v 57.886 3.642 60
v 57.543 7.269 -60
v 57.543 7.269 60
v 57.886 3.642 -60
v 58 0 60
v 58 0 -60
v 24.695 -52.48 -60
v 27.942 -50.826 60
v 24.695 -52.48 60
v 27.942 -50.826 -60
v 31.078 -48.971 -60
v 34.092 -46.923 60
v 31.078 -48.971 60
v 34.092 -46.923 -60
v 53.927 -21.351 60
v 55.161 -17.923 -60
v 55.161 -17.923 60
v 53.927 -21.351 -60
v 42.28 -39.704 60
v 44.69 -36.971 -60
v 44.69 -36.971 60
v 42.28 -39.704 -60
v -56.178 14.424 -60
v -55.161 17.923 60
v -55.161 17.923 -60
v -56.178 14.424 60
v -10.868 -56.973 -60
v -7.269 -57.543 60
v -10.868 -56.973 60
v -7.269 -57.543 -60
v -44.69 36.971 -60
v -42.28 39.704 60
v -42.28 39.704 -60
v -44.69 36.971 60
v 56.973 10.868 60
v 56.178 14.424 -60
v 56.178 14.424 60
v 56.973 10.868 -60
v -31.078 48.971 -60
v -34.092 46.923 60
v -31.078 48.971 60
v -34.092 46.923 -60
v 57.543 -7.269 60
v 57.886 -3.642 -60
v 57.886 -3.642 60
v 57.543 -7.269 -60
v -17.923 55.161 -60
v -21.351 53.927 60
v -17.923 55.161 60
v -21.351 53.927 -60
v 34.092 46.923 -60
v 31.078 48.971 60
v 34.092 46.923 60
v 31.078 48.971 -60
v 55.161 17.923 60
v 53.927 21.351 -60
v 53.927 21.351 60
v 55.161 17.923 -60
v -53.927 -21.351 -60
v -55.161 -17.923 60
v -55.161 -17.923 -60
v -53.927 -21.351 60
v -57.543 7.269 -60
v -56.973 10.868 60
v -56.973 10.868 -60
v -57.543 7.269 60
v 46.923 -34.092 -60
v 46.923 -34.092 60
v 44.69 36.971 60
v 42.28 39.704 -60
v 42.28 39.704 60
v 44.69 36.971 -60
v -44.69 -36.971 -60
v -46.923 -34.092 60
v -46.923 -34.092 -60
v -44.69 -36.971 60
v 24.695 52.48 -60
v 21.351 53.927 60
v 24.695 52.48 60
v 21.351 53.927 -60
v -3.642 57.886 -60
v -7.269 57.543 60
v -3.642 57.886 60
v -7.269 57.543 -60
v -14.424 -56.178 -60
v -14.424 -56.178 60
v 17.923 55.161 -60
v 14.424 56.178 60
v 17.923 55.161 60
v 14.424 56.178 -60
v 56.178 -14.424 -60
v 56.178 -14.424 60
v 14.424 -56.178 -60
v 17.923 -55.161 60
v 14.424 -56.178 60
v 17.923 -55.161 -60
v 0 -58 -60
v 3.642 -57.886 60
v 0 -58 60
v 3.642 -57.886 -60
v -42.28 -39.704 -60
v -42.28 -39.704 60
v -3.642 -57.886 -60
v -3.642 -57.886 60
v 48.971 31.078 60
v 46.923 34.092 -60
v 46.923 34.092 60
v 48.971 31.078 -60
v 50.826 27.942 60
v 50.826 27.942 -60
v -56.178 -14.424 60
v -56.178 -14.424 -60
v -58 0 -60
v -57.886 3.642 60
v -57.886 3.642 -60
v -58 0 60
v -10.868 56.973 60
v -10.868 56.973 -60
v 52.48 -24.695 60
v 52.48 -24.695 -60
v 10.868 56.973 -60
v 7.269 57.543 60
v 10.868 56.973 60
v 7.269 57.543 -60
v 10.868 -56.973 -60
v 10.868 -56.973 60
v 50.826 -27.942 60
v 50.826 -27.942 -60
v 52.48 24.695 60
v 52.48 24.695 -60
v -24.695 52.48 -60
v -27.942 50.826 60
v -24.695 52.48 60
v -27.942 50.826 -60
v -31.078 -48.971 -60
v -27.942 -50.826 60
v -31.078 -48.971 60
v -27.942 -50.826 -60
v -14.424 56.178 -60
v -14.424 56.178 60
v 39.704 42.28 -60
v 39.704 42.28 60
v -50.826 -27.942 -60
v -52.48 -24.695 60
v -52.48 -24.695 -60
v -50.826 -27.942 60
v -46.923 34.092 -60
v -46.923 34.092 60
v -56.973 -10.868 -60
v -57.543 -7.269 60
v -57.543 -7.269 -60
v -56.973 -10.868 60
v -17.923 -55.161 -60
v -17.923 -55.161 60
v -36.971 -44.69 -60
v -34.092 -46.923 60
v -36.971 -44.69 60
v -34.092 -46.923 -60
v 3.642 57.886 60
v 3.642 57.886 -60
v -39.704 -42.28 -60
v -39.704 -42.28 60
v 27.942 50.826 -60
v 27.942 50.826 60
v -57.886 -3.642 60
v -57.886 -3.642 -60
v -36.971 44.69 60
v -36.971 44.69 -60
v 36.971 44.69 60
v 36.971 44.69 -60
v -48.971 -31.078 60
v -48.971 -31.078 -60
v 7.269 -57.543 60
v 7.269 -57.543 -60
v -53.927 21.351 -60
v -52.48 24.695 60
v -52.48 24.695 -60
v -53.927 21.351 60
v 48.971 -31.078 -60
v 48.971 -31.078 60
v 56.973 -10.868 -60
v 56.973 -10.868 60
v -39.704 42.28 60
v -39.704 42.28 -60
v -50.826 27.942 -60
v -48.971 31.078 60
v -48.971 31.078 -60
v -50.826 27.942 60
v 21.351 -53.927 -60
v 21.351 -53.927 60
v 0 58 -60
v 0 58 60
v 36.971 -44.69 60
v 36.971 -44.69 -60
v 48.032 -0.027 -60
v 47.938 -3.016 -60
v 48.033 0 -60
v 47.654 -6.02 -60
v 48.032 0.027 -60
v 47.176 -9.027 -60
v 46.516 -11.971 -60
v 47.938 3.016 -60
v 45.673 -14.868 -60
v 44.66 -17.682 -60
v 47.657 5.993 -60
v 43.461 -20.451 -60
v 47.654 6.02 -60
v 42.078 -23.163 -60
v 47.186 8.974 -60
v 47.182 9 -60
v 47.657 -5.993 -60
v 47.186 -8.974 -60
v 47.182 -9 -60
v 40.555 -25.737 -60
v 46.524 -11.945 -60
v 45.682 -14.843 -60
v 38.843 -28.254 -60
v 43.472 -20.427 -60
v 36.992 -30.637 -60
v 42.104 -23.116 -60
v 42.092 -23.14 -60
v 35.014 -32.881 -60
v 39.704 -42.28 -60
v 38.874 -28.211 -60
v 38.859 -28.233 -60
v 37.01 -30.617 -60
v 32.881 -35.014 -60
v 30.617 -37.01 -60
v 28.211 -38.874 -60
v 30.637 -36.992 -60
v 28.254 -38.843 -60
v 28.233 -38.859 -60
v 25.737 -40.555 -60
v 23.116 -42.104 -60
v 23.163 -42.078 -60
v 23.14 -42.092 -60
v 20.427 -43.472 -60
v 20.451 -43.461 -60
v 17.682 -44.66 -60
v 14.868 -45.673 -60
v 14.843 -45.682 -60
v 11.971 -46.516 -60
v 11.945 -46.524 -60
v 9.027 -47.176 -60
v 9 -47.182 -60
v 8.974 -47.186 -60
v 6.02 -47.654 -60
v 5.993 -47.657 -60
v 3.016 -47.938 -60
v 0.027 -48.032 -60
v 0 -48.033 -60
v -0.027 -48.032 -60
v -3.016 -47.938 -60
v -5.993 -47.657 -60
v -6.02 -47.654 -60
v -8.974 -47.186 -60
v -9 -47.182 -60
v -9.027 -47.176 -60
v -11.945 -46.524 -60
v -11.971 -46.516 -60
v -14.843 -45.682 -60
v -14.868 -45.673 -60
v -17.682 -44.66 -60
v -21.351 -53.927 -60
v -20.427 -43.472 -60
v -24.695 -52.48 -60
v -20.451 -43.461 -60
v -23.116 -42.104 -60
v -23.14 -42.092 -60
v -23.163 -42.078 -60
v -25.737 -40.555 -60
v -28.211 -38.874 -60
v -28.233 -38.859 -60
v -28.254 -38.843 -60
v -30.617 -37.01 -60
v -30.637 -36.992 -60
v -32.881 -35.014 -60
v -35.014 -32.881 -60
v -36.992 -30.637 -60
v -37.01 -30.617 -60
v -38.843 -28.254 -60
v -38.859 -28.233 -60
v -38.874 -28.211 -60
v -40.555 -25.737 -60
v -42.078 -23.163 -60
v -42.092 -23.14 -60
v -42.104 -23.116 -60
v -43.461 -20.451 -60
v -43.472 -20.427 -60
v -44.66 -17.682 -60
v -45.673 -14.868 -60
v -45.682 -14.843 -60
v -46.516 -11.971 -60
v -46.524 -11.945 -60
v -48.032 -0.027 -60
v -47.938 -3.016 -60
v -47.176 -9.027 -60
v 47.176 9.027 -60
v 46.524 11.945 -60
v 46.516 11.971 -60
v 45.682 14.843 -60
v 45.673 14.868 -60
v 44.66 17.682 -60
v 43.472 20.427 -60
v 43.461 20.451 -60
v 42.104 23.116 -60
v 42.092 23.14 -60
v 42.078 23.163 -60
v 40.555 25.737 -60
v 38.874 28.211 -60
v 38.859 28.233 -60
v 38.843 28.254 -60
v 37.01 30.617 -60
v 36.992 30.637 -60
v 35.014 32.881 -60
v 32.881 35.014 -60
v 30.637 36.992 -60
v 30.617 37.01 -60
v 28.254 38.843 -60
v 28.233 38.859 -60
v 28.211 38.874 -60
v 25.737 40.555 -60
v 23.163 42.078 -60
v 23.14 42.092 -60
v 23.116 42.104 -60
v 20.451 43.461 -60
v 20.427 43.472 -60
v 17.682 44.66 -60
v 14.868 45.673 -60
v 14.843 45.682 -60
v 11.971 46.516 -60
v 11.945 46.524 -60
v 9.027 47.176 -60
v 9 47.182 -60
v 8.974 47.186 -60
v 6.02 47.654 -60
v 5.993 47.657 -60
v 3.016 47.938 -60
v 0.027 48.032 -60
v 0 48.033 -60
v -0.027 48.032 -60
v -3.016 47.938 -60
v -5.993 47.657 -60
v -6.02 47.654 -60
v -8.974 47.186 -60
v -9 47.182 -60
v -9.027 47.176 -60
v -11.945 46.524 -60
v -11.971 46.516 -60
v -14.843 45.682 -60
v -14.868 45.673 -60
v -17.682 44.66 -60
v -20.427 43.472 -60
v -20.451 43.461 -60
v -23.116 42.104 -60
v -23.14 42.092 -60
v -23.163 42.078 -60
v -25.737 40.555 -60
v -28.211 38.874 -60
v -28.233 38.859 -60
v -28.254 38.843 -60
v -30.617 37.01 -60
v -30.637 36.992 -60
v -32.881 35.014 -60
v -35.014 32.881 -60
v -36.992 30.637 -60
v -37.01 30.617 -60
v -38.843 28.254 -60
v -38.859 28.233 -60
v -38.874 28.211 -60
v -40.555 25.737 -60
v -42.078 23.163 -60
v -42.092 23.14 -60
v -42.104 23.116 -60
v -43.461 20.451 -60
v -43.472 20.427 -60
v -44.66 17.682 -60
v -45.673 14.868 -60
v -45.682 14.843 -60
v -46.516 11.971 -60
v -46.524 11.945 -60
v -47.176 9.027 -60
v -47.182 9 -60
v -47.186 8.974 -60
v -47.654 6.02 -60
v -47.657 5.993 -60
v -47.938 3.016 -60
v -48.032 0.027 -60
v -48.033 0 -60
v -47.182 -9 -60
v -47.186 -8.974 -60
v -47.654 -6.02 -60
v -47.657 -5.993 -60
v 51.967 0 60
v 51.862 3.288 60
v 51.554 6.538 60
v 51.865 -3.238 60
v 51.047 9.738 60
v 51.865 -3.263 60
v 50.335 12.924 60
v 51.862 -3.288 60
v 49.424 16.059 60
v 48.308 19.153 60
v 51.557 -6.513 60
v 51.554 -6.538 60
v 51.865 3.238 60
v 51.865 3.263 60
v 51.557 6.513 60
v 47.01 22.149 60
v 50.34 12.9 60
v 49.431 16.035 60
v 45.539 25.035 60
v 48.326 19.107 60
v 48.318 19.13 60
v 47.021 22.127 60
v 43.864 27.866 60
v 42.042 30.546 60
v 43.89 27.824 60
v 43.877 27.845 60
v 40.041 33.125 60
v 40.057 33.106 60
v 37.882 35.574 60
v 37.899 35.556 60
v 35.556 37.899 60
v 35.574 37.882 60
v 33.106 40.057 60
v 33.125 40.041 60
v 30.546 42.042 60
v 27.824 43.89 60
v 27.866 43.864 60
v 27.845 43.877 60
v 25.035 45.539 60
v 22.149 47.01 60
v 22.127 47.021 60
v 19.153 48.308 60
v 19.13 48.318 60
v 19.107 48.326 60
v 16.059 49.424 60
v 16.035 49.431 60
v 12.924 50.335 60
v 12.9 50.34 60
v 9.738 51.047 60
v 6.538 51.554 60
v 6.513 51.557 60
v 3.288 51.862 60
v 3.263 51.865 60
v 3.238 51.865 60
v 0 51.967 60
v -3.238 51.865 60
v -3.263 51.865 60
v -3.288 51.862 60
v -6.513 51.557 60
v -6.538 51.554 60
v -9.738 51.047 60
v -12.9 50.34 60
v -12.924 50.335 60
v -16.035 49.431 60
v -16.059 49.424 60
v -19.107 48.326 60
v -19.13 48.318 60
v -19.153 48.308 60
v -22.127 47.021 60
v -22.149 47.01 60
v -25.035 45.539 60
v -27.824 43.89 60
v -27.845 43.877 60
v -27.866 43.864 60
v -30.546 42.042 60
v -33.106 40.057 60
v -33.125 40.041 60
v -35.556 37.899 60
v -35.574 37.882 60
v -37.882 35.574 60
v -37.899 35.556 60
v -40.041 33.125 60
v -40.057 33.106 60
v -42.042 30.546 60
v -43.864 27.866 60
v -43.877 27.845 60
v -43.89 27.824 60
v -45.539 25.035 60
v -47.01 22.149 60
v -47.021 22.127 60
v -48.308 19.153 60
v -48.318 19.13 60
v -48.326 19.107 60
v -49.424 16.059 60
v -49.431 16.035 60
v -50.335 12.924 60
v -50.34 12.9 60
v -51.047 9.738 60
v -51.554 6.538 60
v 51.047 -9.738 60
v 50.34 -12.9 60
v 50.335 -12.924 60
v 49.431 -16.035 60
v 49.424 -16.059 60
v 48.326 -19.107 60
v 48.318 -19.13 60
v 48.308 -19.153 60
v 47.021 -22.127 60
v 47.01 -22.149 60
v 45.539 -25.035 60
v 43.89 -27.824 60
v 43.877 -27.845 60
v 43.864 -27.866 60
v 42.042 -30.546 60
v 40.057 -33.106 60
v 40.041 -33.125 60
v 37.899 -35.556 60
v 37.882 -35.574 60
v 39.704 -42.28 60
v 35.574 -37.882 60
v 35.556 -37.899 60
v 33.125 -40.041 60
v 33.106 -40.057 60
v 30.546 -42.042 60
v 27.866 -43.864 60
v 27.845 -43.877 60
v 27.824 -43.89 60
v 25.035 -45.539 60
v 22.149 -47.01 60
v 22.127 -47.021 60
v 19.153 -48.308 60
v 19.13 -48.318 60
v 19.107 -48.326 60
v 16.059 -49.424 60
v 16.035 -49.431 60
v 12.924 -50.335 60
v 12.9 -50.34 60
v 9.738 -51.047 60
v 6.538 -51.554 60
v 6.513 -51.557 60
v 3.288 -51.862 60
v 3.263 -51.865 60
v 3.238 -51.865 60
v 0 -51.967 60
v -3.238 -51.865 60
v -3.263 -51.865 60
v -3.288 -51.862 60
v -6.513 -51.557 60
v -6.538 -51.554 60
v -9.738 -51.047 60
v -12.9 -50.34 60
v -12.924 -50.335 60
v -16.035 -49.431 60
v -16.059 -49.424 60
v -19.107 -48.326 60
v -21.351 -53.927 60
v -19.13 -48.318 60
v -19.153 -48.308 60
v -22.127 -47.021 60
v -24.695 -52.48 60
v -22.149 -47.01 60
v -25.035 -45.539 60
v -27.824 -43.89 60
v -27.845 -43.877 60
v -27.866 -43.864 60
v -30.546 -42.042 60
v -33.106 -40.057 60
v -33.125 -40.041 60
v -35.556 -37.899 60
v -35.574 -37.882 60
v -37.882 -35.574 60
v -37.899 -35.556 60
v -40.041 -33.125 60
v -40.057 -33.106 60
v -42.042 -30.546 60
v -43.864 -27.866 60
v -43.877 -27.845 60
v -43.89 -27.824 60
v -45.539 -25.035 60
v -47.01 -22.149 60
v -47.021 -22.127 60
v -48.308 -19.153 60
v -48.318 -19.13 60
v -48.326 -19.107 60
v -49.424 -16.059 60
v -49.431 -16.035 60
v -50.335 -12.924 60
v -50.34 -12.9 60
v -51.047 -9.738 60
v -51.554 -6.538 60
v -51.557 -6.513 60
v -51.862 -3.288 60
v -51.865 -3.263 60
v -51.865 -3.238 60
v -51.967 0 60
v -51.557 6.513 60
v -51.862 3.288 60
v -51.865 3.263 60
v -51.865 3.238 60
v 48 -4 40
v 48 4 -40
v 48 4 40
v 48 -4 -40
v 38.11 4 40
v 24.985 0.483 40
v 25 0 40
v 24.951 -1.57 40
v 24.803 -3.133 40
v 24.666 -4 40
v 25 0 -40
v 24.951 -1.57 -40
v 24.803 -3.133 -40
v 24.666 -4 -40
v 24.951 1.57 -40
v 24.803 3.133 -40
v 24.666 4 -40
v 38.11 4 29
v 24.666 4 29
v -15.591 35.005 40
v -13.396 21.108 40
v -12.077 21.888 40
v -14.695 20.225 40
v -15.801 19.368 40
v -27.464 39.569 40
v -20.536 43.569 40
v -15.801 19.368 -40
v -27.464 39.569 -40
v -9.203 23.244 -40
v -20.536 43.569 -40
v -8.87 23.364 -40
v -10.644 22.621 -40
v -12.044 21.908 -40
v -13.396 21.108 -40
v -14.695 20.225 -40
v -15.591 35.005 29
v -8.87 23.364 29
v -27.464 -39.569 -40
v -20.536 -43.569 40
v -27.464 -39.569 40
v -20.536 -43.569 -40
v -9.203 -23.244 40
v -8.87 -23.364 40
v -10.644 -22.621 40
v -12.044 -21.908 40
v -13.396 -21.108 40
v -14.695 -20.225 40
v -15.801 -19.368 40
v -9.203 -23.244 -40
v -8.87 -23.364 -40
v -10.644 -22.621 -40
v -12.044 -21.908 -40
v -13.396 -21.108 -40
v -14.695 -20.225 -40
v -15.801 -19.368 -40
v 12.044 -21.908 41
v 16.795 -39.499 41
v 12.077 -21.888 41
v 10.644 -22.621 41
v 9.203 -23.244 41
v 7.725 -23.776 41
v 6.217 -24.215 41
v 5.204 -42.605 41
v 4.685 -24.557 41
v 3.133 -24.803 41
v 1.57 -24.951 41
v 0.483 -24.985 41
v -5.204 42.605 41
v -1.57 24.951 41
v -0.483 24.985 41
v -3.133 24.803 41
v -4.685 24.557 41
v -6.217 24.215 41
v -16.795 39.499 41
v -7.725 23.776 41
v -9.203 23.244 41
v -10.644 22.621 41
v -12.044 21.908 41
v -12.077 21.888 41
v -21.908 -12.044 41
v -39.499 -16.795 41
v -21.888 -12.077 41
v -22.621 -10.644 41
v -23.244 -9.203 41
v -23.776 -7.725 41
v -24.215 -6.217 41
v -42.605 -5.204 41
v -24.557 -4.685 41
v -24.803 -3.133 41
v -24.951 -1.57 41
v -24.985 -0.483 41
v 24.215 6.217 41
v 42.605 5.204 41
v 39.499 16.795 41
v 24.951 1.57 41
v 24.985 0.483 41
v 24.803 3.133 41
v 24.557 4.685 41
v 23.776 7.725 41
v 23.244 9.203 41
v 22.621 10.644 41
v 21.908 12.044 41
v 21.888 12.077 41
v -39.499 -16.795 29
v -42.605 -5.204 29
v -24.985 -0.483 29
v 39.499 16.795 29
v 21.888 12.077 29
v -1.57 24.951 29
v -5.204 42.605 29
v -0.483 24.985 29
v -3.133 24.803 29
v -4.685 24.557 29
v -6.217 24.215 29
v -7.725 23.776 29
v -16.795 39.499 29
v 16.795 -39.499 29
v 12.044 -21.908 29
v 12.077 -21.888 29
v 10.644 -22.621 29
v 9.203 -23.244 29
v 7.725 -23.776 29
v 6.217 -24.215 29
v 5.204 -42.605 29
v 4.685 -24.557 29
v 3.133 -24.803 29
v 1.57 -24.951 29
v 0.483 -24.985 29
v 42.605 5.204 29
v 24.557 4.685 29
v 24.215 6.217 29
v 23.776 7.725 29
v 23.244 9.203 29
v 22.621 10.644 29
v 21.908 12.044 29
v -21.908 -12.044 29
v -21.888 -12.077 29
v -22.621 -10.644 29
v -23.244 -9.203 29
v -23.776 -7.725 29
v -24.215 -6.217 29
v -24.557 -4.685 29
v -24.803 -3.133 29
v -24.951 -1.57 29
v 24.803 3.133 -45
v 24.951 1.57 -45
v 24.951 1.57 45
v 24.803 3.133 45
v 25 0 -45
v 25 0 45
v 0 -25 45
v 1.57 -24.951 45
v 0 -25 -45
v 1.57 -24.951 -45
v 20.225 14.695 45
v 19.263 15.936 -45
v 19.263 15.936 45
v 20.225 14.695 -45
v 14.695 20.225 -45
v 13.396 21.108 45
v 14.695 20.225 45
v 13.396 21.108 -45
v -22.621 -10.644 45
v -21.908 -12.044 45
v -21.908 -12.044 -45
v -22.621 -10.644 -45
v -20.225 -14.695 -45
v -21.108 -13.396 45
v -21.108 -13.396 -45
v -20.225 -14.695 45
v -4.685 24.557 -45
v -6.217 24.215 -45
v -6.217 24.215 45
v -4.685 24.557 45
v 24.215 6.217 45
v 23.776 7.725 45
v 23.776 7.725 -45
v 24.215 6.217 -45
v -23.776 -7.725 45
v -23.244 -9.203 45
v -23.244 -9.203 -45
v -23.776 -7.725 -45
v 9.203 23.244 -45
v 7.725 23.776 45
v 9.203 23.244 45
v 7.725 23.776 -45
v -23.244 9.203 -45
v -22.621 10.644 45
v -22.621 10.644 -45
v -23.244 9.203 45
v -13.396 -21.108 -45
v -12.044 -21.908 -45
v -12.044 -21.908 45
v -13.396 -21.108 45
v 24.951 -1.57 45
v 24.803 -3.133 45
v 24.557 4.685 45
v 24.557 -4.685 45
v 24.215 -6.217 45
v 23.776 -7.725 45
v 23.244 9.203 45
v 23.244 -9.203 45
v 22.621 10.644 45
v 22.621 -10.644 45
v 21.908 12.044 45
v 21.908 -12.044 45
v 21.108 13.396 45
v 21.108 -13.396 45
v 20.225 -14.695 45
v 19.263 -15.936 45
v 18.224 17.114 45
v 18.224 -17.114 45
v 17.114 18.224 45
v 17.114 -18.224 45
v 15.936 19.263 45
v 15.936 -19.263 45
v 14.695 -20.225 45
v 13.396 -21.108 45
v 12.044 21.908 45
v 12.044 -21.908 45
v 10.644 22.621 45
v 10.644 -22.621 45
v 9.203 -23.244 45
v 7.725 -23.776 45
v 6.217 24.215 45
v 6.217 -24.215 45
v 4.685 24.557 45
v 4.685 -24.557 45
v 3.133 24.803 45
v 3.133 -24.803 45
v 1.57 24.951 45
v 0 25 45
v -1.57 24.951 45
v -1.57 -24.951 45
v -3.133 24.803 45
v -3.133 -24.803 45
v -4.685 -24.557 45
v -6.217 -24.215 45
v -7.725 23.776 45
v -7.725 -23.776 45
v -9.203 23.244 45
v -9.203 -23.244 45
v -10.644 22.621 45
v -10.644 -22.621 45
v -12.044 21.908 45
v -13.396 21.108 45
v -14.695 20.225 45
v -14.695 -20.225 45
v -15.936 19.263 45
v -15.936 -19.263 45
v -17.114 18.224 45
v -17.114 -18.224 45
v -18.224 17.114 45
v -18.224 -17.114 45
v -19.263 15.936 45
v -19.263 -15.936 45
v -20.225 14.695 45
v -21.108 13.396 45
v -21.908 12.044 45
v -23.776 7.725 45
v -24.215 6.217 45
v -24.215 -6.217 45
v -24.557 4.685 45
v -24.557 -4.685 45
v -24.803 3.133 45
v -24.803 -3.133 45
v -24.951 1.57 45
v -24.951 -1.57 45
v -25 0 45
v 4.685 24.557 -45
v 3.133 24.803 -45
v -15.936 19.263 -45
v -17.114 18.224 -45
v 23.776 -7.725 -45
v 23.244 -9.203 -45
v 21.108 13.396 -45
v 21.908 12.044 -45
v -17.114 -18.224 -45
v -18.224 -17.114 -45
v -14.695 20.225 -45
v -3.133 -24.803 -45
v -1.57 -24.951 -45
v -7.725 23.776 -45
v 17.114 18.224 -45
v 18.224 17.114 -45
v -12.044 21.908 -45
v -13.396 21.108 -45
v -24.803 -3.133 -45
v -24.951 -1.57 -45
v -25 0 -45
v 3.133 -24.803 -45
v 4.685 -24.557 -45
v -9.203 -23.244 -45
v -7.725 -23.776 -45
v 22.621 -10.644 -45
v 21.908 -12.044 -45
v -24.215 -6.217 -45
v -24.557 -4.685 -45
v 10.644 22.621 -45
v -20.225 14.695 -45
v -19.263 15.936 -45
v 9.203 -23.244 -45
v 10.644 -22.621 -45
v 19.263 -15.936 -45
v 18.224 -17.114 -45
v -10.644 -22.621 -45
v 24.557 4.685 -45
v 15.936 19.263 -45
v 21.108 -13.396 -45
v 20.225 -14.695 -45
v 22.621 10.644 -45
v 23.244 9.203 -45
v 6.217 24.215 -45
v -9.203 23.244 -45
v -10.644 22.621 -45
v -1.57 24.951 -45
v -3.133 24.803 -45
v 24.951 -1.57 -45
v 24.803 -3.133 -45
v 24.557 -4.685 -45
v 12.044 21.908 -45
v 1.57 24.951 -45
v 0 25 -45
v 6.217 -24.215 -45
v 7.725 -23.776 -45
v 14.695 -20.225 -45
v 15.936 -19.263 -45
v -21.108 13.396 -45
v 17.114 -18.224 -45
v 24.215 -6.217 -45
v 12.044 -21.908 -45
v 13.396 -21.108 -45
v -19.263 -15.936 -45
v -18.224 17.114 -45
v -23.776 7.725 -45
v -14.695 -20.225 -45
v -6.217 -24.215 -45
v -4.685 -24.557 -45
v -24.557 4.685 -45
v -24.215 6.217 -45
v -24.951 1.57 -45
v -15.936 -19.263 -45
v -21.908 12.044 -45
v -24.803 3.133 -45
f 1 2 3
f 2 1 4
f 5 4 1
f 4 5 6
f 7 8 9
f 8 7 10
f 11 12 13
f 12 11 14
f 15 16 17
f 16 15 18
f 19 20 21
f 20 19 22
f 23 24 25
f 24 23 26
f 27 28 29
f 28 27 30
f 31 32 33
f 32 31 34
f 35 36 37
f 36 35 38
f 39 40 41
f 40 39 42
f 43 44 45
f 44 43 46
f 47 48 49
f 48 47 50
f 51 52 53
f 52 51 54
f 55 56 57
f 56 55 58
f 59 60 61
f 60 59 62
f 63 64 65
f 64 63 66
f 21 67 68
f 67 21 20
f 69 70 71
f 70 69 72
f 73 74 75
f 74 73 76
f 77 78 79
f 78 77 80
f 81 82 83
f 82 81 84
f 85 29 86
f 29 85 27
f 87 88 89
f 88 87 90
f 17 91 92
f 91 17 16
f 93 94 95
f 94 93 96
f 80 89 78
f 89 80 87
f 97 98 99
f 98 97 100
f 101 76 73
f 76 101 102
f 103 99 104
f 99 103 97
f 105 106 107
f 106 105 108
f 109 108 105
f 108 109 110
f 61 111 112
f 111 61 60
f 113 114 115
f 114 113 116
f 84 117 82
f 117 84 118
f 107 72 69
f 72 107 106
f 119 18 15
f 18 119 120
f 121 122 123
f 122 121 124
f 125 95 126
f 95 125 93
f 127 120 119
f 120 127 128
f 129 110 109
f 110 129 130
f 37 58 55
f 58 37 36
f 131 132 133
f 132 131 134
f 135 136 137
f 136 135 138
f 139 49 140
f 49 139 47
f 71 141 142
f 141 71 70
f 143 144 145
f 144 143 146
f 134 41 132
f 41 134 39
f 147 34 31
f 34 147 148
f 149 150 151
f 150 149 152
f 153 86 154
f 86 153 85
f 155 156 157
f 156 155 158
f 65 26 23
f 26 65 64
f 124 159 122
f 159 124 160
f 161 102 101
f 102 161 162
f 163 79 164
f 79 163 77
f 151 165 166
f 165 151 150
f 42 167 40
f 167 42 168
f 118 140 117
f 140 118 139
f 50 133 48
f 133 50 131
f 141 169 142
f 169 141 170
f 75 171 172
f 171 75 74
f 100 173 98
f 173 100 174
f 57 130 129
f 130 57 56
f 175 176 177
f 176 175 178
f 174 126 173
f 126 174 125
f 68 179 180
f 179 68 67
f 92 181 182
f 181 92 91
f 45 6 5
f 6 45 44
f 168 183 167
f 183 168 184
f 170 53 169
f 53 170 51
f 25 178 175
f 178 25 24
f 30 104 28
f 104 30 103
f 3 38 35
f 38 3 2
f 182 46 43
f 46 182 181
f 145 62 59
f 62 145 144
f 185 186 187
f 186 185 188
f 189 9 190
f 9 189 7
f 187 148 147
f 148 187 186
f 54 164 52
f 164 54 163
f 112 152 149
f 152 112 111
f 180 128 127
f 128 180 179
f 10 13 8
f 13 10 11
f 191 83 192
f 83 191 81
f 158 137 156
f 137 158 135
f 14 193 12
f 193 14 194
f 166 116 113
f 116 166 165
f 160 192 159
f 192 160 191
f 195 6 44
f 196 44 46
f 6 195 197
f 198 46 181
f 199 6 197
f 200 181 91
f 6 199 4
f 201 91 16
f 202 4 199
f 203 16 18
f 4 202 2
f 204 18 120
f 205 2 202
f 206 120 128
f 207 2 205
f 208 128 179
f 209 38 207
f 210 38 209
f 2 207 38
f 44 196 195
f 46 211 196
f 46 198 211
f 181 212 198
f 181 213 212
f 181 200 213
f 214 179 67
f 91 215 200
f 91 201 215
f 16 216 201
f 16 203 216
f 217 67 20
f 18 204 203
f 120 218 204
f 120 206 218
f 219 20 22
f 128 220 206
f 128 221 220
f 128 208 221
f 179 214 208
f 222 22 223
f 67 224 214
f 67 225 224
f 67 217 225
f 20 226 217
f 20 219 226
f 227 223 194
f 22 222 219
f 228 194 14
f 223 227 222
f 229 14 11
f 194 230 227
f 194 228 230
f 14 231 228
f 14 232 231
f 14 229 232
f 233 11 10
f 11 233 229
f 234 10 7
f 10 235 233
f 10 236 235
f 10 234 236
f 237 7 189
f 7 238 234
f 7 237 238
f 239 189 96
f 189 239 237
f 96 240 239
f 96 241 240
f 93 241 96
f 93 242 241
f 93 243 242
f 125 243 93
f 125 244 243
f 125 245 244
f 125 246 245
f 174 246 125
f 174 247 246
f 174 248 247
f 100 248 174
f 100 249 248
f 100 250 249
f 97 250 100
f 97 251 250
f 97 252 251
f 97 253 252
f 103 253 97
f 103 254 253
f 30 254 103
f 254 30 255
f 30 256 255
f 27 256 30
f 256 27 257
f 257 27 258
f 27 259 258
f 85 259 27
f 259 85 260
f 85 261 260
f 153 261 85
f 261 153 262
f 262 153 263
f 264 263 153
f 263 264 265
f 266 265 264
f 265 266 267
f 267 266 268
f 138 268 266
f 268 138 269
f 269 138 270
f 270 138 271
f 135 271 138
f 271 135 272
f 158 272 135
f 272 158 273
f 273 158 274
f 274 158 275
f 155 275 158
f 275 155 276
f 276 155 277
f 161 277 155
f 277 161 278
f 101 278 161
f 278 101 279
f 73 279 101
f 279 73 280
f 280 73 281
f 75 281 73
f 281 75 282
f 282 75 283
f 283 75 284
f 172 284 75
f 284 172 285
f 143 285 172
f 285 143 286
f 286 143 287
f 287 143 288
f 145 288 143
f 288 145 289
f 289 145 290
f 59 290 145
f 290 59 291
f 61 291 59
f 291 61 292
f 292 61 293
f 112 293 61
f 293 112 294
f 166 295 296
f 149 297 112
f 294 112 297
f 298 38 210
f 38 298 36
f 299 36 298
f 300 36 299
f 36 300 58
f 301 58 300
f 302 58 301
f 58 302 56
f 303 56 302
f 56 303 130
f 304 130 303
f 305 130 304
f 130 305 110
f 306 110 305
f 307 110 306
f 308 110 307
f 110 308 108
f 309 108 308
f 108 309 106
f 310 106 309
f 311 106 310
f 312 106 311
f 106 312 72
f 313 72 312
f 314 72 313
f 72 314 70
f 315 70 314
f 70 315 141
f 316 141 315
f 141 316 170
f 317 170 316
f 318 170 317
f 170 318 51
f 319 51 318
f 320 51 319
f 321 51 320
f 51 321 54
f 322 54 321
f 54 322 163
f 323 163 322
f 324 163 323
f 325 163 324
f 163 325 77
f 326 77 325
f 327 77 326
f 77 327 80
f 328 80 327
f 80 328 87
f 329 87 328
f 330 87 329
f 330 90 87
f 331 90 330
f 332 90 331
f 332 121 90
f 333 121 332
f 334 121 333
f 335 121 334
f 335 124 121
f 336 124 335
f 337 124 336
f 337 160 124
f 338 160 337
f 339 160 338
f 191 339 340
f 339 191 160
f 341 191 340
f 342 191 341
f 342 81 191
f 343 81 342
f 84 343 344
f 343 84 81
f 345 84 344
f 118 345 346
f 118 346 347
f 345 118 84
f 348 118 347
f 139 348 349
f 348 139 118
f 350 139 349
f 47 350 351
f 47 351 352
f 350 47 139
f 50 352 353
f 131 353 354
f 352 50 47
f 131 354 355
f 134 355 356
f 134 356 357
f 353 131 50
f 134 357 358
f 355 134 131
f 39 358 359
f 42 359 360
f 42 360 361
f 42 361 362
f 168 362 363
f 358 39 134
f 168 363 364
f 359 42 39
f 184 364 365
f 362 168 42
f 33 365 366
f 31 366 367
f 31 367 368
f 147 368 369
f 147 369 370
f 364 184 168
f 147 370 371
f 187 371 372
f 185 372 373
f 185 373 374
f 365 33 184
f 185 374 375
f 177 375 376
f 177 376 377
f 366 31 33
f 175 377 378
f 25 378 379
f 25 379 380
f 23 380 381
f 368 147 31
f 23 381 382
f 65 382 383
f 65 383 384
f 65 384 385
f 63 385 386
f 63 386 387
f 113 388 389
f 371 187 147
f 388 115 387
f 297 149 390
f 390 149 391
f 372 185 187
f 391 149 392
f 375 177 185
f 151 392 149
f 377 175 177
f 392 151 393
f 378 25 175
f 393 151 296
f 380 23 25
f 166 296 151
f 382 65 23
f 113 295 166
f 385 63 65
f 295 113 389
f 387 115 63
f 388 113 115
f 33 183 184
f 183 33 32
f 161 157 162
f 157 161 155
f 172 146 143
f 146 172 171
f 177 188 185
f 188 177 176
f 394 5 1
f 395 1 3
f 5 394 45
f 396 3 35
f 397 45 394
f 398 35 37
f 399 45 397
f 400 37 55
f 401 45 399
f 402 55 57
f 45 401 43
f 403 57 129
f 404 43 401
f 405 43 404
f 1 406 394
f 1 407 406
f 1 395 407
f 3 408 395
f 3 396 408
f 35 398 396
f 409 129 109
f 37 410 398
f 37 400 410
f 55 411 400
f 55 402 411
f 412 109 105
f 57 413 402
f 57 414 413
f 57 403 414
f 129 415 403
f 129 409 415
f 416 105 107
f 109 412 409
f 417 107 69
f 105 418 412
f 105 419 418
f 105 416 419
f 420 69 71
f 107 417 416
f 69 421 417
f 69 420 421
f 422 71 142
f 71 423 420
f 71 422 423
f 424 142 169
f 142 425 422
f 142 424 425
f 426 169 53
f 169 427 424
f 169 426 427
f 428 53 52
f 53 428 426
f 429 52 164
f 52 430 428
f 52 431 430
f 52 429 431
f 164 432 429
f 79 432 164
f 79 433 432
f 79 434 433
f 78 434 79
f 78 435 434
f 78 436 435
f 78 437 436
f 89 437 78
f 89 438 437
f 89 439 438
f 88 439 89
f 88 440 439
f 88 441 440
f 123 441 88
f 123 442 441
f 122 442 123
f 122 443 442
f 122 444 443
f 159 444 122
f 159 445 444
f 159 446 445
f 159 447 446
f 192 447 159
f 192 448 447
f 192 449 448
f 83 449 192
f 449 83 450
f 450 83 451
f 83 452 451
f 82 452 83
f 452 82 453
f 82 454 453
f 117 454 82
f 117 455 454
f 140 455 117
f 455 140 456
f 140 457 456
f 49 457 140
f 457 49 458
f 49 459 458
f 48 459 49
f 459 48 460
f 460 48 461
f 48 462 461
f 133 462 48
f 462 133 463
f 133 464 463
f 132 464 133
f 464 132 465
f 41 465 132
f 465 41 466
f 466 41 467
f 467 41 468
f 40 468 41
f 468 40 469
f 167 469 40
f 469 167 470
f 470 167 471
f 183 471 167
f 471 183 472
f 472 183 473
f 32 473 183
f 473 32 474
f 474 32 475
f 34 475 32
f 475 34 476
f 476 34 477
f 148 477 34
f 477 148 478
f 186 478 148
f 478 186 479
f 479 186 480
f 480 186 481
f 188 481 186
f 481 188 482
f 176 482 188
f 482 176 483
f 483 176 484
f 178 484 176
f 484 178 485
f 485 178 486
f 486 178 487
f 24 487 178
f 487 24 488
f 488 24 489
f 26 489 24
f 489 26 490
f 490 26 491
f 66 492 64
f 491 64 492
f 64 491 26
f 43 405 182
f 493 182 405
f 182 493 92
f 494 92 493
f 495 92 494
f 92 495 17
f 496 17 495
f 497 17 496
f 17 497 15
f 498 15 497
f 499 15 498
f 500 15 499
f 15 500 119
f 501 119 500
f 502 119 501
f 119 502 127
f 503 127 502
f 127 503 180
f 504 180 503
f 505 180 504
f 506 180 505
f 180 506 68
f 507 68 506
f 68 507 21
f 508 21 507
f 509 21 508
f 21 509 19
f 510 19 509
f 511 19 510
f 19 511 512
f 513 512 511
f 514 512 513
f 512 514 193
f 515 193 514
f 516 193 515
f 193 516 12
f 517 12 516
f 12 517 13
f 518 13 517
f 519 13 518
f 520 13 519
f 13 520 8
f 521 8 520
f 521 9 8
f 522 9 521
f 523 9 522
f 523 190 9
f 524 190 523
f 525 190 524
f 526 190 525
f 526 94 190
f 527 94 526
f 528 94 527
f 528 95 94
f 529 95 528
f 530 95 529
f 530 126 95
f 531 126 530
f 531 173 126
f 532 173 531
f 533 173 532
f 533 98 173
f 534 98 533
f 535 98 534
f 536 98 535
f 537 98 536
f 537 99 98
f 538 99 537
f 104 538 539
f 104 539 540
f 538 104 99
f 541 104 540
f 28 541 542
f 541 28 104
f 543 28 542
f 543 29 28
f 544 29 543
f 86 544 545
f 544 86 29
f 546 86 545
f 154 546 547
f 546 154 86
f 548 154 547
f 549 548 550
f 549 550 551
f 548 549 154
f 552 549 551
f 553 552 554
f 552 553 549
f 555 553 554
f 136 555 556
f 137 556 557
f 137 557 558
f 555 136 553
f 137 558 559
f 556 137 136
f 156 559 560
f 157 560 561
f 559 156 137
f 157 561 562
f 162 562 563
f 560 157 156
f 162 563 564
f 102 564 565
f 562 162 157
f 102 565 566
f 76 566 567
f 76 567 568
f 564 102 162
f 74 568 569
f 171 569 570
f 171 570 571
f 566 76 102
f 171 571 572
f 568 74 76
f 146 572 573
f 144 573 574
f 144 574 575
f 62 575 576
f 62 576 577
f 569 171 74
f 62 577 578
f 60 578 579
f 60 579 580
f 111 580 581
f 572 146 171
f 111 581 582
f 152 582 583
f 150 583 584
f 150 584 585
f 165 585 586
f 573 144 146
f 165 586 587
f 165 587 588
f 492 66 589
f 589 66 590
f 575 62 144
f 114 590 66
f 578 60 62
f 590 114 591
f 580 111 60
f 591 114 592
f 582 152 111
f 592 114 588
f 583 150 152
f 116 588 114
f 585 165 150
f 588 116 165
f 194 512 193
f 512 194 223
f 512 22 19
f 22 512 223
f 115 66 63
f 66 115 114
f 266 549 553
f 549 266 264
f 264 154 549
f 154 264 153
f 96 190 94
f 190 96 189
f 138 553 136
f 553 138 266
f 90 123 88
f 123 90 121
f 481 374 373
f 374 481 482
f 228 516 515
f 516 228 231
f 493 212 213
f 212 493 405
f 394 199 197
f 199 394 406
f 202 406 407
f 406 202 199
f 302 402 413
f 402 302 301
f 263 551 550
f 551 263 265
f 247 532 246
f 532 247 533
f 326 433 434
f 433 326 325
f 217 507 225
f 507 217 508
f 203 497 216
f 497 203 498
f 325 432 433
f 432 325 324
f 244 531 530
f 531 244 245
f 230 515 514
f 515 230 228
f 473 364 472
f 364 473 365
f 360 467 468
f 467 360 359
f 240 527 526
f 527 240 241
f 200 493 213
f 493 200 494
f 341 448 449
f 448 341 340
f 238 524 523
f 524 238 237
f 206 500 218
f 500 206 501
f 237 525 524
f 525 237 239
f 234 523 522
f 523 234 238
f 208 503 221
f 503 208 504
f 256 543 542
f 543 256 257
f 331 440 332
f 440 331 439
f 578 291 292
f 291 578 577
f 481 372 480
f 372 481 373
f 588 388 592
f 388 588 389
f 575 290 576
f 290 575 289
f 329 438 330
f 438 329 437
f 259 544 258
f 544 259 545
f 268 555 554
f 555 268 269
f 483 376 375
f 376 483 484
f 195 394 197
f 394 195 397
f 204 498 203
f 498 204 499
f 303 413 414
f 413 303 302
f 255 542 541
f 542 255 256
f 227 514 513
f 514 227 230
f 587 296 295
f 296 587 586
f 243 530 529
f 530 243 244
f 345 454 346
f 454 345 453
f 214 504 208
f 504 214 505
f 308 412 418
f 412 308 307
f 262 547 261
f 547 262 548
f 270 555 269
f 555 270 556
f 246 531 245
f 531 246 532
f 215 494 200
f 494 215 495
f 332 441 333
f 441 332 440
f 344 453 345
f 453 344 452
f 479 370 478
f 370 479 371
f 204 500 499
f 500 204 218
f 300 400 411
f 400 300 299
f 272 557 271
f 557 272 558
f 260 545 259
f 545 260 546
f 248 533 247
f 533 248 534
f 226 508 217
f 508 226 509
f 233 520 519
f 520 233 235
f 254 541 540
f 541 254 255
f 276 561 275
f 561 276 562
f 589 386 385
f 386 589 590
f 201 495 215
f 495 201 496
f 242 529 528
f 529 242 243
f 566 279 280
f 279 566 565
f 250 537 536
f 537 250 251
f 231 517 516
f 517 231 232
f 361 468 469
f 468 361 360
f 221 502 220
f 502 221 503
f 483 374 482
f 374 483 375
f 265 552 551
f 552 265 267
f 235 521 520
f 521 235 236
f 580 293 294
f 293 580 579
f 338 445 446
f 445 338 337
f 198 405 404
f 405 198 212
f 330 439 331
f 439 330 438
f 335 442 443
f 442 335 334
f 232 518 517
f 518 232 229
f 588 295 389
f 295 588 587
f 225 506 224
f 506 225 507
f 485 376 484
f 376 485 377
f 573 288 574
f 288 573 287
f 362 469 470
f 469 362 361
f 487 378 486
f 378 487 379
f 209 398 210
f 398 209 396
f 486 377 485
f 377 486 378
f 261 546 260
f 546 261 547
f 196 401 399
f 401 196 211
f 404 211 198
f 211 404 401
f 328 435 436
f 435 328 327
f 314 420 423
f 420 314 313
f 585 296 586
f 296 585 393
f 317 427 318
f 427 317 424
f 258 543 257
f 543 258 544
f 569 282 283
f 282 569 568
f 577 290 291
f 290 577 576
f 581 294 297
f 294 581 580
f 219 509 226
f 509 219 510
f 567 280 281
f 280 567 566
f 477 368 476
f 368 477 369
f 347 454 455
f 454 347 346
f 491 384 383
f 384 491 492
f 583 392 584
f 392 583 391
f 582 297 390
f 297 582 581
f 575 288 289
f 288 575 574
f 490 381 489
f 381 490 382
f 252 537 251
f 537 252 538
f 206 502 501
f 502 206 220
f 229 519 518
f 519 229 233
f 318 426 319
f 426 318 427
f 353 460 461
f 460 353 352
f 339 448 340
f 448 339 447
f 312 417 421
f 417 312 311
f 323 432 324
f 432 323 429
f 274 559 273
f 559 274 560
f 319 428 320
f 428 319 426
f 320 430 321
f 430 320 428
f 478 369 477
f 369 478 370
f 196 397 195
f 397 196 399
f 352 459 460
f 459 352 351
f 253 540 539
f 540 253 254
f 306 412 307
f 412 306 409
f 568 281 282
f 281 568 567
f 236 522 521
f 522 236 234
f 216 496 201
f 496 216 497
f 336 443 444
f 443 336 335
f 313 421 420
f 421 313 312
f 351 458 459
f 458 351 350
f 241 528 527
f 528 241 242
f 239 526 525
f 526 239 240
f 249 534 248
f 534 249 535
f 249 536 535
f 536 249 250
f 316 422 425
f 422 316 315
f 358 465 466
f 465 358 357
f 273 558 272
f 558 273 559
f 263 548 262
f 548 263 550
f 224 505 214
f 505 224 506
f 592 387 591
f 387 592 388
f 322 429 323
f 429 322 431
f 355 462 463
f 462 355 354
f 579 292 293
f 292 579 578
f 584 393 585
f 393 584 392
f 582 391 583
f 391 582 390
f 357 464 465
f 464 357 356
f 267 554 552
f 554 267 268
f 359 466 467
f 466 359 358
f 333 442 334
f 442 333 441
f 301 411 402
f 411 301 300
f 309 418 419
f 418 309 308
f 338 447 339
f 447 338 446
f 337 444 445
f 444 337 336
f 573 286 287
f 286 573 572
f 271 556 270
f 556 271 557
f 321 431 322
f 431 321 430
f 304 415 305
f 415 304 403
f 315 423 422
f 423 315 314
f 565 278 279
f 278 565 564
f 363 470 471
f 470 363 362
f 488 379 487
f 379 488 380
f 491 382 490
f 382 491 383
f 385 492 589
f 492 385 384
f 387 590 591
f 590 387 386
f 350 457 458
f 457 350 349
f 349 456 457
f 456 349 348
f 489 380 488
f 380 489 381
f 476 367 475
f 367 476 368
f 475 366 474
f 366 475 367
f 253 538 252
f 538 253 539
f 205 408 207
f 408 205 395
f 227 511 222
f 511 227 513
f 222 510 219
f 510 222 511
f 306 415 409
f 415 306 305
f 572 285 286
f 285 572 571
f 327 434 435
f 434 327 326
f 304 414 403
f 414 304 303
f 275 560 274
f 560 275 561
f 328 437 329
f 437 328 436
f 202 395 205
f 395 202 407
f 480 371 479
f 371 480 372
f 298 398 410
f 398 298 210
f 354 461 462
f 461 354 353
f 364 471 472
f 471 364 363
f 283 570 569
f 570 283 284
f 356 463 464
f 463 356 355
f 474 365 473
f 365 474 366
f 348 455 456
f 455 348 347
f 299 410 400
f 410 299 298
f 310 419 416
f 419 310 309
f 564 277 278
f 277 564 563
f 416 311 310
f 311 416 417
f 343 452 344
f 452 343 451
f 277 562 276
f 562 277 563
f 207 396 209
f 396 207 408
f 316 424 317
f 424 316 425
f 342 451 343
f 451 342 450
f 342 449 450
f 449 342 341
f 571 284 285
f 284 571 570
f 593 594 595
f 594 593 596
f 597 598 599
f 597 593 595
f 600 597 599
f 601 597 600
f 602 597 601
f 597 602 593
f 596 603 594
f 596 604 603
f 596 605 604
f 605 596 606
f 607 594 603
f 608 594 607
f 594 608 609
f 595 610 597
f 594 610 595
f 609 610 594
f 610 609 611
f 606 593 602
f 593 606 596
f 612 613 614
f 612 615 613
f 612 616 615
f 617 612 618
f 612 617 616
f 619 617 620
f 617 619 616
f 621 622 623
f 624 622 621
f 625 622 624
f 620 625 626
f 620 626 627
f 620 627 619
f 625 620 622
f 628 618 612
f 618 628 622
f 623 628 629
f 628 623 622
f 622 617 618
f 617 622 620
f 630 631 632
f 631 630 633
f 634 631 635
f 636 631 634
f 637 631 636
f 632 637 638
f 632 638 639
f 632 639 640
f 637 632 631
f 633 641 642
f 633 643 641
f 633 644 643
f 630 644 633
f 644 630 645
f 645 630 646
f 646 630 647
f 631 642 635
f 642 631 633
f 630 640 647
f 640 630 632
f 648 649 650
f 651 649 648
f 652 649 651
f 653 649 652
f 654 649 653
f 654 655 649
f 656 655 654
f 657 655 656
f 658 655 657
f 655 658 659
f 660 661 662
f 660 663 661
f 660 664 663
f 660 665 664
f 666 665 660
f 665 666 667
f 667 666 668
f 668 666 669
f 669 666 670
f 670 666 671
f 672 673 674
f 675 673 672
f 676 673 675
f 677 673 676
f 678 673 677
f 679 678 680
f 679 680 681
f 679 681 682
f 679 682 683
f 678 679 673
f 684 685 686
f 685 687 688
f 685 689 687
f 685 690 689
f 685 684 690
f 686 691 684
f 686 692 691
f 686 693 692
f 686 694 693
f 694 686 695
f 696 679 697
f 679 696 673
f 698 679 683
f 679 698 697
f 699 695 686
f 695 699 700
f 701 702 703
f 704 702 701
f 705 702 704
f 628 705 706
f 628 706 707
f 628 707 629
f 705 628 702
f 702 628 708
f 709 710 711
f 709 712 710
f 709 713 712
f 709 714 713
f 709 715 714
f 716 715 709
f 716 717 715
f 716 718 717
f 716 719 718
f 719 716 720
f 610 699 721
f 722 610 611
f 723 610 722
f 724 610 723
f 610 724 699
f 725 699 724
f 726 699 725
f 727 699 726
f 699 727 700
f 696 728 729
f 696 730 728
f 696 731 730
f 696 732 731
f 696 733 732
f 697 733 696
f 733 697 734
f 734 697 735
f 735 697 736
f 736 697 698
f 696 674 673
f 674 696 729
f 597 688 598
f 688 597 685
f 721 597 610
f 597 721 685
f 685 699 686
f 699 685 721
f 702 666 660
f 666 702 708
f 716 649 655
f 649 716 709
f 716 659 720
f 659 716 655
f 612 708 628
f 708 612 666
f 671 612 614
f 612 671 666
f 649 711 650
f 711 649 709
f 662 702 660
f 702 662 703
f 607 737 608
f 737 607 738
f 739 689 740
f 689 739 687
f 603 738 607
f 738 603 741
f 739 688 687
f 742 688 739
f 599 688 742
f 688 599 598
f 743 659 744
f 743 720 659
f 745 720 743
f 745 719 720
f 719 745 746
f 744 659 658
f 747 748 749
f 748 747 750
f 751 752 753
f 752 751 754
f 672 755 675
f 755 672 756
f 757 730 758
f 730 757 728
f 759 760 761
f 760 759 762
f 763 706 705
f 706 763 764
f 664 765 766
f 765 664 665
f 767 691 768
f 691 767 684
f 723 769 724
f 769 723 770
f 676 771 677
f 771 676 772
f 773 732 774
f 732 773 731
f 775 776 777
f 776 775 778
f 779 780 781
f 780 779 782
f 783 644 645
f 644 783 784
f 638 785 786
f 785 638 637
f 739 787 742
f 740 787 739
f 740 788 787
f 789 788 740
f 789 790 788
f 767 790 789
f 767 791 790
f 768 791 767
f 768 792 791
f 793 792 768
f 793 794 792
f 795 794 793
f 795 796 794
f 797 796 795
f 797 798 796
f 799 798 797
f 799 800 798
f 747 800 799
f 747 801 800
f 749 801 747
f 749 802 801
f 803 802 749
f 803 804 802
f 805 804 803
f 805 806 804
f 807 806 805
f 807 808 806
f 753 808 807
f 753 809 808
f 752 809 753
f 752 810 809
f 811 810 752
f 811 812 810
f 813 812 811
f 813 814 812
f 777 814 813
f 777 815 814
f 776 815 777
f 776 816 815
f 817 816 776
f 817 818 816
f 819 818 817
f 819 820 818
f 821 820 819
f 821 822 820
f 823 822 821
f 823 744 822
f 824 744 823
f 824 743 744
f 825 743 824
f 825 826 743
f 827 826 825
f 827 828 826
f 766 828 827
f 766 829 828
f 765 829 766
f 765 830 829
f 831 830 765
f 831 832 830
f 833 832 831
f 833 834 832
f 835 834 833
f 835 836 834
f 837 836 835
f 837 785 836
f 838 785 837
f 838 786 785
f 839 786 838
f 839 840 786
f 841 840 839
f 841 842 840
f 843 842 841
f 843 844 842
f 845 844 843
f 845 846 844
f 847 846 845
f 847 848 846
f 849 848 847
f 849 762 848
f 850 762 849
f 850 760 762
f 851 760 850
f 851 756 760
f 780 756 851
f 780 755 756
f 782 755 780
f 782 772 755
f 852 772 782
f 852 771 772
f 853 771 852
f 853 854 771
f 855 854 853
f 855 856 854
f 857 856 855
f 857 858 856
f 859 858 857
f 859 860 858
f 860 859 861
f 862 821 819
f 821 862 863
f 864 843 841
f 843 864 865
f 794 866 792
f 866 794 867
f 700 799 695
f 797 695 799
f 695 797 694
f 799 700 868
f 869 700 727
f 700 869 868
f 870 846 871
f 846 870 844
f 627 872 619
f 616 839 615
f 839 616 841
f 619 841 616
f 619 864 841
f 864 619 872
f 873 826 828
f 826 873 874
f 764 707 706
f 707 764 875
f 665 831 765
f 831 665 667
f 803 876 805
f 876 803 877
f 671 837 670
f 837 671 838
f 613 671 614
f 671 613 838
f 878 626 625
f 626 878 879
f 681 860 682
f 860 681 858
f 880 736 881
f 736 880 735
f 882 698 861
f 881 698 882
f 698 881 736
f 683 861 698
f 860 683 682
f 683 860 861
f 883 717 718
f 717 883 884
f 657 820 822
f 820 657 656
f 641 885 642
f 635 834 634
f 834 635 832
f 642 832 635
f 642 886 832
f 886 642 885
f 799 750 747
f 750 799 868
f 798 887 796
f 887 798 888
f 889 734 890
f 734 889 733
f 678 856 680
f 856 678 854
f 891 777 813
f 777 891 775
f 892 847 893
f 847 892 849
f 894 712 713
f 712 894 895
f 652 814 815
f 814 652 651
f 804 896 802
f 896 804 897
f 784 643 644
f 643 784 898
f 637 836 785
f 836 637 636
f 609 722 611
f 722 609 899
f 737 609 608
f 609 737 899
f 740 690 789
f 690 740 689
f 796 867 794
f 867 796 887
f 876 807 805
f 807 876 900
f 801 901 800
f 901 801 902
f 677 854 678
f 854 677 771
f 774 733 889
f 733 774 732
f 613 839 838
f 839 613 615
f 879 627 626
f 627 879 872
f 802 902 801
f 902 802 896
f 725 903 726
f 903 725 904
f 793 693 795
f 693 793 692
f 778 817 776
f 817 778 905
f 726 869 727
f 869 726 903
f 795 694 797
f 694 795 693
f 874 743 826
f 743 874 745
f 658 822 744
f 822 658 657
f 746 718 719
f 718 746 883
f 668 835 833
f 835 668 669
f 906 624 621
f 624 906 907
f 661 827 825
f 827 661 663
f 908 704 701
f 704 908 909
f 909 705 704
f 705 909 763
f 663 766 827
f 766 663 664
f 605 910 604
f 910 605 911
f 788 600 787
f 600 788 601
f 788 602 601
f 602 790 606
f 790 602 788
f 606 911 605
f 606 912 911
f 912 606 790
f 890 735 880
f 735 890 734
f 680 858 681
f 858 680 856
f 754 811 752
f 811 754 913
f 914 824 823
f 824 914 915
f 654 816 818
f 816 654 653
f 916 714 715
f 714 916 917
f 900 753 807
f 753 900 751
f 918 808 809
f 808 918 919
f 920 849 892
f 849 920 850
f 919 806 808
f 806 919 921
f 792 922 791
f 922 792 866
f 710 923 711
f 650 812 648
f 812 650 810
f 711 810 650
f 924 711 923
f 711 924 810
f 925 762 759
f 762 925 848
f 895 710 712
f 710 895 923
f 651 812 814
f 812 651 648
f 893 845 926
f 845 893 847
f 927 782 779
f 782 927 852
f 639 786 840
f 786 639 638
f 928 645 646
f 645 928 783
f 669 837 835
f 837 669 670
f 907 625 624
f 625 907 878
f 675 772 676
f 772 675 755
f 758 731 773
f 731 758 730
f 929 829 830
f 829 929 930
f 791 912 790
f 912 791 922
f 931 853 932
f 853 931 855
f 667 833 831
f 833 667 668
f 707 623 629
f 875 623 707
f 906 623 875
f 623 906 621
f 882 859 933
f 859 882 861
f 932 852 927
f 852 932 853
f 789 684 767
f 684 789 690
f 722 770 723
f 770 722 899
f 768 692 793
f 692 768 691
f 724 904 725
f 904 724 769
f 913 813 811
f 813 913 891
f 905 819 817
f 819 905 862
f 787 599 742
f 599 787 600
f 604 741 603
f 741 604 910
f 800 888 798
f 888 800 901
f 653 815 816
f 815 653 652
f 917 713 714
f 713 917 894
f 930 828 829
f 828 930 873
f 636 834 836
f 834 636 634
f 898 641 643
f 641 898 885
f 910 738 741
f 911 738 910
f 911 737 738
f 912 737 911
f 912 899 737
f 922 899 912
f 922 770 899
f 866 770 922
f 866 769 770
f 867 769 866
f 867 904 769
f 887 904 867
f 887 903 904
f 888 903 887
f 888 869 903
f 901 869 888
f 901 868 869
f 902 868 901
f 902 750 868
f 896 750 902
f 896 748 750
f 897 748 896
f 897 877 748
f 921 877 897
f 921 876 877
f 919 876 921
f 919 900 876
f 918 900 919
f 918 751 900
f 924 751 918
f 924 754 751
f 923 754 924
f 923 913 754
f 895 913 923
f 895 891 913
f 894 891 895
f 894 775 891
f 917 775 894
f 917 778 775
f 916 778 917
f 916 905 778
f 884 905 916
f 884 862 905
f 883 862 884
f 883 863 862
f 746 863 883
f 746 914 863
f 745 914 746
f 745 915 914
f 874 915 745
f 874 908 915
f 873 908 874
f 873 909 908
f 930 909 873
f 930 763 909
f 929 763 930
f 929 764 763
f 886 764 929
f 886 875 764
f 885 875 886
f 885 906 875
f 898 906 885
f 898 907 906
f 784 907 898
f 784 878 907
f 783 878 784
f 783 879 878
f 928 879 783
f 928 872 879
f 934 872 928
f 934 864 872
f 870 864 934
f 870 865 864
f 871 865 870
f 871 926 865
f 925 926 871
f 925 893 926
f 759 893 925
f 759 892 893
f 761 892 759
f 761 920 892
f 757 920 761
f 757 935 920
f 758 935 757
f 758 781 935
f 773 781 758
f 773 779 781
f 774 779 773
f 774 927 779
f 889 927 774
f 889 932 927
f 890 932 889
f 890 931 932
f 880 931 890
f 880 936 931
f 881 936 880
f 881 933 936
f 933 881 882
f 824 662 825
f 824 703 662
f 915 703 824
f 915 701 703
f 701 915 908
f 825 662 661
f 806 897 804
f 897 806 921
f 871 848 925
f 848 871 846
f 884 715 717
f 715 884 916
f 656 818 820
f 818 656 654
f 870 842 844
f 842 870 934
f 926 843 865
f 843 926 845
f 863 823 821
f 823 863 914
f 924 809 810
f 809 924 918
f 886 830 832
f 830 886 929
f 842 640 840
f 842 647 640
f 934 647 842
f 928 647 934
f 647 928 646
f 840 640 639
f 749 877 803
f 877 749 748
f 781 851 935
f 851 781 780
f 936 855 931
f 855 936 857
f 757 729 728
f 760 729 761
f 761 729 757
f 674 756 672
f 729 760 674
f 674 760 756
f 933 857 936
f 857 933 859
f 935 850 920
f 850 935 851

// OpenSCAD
// ============================================================================
// DiveGuard heavy-class ROV - rov-platform/HLD.md
// 05_Propulsion_Horizontal_Module - ducted marine/turn thrusters
//
// Lifted from the design dialogue originally pasted into BACKLOG.md on main
// (2026-08 batch), preserved verbatim as authored there.
//
// Update 2026-08-08: OpenSCAD IS available in this sandbox (installed via apt
// for this verification pass - previously assumed unavailable; that
// assumption was wrong, corrected repo-wide, see BACKLOG.md). This file has
// been rendered (`openscad -o out.stl this.scad`) and confirmed a valid
// 2-manifold solid ("Simple: yes" in the render log) - real geometric
// validity, not just a paren-balance check. STEP export and an independent
// engineer re-check of dimension/tolerance claims before any
// part is fabricated from it.
// ============================================================================

// ==========================================
// DIVEGUARD: Propulsion Horizontal Module (05)
// Material: POM-C / Anodized Aluminum
// Component: Ducted Thruster Pod (Ø100mm)
// ==========================================

$fn = 100;

module horizontal_thruster_module() {
    // 1. Кольцевая насадка (дута) с профилем канала
    color("MidnightBlue")
    difference() {
        // Внешний контур насадки с утолщением в центральной части
        cylinder(h = 120, r = 58, center = true);
        // Внутренний гидродинамический канал (сужение/диффузор)
        translate([0, 0, -61])
            cylinder(h = 122, r1 = 48, r2 = 52); // Профиль конфузор-диффузор
    }

    // 2. Центральный гермомоторный подмюл (гильза статора)
    color("DarkGray")
    cylinder(h = 90, r = 25, center = true);

    // 3. Обтекаемые аэродинамические стойки крепления мотора к насадке (3 шт)
    color("Silver")
    for (a = [0, 120, 240]) {
        rotate([0, 0, a])
        translate([36, 0, 0])
            cube([24, 8, 80], center = true);
    }

    // 4. Гребной винт (упрощенная параметрическая модель 4-лопастного винта)
    color("Gold")
    translate([0, 0, 35])
    intersection() {
        cylinder(h = 15, r = 47, center = true);
        union() {
            for (i = [0 : 3]) {
                rotate([0, 0, i * 90 + 15])
                cube([85, 12, 12], center = true);
            }
        }
    }
}

horizontal_thruster_module();
